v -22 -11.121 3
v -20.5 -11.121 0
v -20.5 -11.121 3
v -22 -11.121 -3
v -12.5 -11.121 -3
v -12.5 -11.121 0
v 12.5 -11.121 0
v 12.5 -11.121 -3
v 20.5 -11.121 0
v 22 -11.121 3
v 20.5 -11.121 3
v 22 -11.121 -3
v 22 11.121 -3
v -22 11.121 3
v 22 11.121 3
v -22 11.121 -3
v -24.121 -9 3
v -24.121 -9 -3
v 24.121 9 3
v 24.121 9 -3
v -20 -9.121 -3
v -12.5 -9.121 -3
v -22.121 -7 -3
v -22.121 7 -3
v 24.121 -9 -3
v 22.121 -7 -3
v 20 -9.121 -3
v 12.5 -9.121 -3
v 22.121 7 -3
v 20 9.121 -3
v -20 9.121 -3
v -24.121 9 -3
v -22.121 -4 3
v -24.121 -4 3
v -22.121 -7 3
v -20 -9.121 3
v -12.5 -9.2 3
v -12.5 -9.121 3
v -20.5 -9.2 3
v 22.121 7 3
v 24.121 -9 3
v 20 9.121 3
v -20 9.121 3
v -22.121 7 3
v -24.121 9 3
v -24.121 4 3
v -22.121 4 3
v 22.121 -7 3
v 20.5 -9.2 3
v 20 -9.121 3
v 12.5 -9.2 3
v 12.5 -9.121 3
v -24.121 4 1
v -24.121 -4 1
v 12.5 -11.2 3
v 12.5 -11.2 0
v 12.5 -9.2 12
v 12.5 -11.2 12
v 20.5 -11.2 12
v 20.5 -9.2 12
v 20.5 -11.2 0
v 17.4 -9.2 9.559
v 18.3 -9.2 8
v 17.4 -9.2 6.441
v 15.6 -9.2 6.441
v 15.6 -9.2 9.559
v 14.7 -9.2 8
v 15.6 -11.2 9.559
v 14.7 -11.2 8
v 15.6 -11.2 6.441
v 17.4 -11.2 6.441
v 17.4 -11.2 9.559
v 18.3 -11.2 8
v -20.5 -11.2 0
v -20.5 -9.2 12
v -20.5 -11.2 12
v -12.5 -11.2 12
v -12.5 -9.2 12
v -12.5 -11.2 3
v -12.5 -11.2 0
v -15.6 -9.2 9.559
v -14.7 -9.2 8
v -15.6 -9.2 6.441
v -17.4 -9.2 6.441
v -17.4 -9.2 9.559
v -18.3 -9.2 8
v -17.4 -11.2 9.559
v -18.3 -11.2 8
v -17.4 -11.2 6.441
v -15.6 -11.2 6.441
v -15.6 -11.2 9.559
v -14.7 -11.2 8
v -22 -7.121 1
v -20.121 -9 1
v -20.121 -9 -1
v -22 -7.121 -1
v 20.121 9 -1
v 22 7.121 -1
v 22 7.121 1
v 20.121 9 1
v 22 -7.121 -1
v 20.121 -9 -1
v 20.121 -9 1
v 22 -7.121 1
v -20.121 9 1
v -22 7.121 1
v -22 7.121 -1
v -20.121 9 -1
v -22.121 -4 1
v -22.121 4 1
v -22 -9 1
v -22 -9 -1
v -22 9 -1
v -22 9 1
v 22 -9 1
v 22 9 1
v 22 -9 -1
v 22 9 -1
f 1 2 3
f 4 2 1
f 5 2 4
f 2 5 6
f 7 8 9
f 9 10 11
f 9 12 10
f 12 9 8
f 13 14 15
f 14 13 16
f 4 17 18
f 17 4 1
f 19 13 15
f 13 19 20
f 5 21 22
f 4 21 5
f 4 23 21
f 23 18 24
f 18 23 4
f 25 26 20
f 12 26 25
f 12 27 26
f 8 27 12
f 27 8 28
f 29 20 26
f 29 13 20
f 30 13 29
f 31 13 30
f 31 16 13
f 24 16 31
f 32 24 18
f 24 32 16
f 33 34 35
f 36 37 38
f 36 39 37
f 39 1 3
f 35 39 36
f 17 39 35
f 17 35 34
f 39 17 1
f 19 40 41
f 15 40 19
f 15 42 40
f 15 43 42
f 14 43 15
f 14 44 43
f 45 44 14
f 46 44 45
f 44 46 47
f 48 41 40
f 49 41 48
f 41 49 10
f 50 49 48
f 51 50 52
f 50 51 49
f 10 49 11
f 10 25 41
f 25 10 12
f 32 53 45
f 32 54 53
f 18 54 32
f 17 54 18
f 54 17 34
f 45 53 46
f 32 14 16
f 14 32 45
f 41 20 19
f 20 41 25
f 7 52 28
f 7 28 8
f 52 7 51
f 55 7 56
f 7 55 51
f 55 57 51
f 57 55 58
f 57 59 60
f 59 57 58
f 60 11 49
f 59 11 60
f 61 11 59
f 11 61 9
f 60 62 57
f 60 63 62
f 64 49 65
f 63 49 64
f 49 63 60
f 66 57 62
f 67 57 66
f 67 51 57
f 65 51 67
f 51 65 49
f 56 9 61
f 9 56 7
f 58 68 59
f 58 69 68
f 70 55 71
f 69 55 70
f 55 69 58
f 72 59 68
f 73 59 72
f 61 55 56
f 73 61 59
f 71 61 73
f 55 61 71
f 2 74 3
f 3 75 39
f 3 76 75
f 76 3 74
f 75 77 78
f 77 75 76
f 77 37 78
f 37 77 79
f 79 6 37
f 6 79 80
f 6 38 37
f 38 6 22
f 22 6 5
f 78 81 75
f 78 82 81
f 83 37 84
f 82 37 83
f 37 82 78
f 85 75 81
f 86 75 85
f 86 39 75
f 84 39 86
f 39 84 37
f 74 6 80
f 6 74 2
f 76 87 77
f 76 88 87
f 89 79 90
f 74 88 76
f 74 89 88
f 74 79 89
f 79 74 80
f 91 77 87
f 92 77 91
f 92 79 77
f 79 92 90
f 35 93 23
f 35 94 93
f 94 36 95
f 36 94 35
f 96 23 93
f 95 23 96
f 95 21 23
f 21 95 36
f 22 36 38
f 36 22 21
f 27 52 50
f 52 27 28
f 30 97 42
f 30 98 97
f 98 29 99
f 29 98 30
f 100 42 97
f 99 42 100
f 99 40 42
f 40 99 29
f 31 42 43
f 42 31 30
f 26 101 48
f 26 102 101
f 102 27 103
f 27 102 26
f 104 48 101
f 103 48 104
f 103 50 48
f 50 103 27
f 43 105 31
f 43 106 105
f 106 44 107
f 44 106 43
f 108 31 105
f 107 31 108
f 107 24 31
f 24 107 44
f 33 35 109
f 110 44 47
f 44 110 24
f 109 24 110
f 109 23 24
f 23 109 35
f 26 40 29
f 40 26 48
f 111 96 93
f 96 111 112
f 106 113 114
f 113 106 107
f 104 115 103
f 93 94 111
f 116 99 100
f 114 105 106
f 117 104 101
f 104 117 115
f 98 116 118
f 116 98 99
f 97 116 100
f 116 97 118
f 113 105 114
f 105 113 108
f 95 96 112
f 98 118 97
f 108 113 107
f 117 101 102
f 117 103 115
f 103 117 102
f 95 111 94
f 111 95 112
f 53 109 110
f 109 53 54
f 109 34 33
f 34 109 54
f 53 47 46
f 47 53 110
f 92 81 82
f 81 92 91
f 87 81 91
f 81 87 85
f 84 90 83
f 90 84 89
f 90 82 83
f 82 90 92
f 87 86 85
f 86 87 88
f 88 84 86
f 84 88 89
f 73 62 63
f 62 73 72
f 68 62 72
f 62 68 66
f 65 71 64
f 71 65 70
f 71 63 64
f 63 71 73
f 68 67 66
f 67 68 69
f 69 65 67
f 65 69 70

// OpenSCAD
difference () {
  union () {
    minkowski () {
      cube ([44, 18, 3], center=true);
      rotate (a=45.0, v=[0, 0, 1]) {
        cube ([3, 3, 3], center=true);
      }
    }
    translate ([16.5, -10.2, 6]) {
      cube ([8, 2, 12], center=true);
    }
    translate ([-16.5, -10.2, 6]) {
      cube ([8, 2, 12], center=true);
    }
  }
  minkowski () {
    cube ([40, 14, 3], center=true);
    rotate (a=45.0, v=[0, 0, 1]) {
      cube ([3, 3, 3], center=true);
    }
  }
  cube ([44, 18, 2], center=true);
  translate ([-23, 0, 2]) {
    cube ([3, 8, 2], center=true);
  }
  translate ([-16.5, -10.2, 8]) {
    rotate (a=90.0, v=[1, 0, 0]) {
      cylinder (h=2, r=1.8, center=true);
    }
  }
  translate ([16.5, -10.2, 8]) {
    rotate (a=90.0, v=[1, 0, 0]) {
      cylinder (h=2, r=1.8, center=true);
    }
  }
  translate ([0, -10, ]) {
    cube ([25, 5, 6], center=true);
  }
}
